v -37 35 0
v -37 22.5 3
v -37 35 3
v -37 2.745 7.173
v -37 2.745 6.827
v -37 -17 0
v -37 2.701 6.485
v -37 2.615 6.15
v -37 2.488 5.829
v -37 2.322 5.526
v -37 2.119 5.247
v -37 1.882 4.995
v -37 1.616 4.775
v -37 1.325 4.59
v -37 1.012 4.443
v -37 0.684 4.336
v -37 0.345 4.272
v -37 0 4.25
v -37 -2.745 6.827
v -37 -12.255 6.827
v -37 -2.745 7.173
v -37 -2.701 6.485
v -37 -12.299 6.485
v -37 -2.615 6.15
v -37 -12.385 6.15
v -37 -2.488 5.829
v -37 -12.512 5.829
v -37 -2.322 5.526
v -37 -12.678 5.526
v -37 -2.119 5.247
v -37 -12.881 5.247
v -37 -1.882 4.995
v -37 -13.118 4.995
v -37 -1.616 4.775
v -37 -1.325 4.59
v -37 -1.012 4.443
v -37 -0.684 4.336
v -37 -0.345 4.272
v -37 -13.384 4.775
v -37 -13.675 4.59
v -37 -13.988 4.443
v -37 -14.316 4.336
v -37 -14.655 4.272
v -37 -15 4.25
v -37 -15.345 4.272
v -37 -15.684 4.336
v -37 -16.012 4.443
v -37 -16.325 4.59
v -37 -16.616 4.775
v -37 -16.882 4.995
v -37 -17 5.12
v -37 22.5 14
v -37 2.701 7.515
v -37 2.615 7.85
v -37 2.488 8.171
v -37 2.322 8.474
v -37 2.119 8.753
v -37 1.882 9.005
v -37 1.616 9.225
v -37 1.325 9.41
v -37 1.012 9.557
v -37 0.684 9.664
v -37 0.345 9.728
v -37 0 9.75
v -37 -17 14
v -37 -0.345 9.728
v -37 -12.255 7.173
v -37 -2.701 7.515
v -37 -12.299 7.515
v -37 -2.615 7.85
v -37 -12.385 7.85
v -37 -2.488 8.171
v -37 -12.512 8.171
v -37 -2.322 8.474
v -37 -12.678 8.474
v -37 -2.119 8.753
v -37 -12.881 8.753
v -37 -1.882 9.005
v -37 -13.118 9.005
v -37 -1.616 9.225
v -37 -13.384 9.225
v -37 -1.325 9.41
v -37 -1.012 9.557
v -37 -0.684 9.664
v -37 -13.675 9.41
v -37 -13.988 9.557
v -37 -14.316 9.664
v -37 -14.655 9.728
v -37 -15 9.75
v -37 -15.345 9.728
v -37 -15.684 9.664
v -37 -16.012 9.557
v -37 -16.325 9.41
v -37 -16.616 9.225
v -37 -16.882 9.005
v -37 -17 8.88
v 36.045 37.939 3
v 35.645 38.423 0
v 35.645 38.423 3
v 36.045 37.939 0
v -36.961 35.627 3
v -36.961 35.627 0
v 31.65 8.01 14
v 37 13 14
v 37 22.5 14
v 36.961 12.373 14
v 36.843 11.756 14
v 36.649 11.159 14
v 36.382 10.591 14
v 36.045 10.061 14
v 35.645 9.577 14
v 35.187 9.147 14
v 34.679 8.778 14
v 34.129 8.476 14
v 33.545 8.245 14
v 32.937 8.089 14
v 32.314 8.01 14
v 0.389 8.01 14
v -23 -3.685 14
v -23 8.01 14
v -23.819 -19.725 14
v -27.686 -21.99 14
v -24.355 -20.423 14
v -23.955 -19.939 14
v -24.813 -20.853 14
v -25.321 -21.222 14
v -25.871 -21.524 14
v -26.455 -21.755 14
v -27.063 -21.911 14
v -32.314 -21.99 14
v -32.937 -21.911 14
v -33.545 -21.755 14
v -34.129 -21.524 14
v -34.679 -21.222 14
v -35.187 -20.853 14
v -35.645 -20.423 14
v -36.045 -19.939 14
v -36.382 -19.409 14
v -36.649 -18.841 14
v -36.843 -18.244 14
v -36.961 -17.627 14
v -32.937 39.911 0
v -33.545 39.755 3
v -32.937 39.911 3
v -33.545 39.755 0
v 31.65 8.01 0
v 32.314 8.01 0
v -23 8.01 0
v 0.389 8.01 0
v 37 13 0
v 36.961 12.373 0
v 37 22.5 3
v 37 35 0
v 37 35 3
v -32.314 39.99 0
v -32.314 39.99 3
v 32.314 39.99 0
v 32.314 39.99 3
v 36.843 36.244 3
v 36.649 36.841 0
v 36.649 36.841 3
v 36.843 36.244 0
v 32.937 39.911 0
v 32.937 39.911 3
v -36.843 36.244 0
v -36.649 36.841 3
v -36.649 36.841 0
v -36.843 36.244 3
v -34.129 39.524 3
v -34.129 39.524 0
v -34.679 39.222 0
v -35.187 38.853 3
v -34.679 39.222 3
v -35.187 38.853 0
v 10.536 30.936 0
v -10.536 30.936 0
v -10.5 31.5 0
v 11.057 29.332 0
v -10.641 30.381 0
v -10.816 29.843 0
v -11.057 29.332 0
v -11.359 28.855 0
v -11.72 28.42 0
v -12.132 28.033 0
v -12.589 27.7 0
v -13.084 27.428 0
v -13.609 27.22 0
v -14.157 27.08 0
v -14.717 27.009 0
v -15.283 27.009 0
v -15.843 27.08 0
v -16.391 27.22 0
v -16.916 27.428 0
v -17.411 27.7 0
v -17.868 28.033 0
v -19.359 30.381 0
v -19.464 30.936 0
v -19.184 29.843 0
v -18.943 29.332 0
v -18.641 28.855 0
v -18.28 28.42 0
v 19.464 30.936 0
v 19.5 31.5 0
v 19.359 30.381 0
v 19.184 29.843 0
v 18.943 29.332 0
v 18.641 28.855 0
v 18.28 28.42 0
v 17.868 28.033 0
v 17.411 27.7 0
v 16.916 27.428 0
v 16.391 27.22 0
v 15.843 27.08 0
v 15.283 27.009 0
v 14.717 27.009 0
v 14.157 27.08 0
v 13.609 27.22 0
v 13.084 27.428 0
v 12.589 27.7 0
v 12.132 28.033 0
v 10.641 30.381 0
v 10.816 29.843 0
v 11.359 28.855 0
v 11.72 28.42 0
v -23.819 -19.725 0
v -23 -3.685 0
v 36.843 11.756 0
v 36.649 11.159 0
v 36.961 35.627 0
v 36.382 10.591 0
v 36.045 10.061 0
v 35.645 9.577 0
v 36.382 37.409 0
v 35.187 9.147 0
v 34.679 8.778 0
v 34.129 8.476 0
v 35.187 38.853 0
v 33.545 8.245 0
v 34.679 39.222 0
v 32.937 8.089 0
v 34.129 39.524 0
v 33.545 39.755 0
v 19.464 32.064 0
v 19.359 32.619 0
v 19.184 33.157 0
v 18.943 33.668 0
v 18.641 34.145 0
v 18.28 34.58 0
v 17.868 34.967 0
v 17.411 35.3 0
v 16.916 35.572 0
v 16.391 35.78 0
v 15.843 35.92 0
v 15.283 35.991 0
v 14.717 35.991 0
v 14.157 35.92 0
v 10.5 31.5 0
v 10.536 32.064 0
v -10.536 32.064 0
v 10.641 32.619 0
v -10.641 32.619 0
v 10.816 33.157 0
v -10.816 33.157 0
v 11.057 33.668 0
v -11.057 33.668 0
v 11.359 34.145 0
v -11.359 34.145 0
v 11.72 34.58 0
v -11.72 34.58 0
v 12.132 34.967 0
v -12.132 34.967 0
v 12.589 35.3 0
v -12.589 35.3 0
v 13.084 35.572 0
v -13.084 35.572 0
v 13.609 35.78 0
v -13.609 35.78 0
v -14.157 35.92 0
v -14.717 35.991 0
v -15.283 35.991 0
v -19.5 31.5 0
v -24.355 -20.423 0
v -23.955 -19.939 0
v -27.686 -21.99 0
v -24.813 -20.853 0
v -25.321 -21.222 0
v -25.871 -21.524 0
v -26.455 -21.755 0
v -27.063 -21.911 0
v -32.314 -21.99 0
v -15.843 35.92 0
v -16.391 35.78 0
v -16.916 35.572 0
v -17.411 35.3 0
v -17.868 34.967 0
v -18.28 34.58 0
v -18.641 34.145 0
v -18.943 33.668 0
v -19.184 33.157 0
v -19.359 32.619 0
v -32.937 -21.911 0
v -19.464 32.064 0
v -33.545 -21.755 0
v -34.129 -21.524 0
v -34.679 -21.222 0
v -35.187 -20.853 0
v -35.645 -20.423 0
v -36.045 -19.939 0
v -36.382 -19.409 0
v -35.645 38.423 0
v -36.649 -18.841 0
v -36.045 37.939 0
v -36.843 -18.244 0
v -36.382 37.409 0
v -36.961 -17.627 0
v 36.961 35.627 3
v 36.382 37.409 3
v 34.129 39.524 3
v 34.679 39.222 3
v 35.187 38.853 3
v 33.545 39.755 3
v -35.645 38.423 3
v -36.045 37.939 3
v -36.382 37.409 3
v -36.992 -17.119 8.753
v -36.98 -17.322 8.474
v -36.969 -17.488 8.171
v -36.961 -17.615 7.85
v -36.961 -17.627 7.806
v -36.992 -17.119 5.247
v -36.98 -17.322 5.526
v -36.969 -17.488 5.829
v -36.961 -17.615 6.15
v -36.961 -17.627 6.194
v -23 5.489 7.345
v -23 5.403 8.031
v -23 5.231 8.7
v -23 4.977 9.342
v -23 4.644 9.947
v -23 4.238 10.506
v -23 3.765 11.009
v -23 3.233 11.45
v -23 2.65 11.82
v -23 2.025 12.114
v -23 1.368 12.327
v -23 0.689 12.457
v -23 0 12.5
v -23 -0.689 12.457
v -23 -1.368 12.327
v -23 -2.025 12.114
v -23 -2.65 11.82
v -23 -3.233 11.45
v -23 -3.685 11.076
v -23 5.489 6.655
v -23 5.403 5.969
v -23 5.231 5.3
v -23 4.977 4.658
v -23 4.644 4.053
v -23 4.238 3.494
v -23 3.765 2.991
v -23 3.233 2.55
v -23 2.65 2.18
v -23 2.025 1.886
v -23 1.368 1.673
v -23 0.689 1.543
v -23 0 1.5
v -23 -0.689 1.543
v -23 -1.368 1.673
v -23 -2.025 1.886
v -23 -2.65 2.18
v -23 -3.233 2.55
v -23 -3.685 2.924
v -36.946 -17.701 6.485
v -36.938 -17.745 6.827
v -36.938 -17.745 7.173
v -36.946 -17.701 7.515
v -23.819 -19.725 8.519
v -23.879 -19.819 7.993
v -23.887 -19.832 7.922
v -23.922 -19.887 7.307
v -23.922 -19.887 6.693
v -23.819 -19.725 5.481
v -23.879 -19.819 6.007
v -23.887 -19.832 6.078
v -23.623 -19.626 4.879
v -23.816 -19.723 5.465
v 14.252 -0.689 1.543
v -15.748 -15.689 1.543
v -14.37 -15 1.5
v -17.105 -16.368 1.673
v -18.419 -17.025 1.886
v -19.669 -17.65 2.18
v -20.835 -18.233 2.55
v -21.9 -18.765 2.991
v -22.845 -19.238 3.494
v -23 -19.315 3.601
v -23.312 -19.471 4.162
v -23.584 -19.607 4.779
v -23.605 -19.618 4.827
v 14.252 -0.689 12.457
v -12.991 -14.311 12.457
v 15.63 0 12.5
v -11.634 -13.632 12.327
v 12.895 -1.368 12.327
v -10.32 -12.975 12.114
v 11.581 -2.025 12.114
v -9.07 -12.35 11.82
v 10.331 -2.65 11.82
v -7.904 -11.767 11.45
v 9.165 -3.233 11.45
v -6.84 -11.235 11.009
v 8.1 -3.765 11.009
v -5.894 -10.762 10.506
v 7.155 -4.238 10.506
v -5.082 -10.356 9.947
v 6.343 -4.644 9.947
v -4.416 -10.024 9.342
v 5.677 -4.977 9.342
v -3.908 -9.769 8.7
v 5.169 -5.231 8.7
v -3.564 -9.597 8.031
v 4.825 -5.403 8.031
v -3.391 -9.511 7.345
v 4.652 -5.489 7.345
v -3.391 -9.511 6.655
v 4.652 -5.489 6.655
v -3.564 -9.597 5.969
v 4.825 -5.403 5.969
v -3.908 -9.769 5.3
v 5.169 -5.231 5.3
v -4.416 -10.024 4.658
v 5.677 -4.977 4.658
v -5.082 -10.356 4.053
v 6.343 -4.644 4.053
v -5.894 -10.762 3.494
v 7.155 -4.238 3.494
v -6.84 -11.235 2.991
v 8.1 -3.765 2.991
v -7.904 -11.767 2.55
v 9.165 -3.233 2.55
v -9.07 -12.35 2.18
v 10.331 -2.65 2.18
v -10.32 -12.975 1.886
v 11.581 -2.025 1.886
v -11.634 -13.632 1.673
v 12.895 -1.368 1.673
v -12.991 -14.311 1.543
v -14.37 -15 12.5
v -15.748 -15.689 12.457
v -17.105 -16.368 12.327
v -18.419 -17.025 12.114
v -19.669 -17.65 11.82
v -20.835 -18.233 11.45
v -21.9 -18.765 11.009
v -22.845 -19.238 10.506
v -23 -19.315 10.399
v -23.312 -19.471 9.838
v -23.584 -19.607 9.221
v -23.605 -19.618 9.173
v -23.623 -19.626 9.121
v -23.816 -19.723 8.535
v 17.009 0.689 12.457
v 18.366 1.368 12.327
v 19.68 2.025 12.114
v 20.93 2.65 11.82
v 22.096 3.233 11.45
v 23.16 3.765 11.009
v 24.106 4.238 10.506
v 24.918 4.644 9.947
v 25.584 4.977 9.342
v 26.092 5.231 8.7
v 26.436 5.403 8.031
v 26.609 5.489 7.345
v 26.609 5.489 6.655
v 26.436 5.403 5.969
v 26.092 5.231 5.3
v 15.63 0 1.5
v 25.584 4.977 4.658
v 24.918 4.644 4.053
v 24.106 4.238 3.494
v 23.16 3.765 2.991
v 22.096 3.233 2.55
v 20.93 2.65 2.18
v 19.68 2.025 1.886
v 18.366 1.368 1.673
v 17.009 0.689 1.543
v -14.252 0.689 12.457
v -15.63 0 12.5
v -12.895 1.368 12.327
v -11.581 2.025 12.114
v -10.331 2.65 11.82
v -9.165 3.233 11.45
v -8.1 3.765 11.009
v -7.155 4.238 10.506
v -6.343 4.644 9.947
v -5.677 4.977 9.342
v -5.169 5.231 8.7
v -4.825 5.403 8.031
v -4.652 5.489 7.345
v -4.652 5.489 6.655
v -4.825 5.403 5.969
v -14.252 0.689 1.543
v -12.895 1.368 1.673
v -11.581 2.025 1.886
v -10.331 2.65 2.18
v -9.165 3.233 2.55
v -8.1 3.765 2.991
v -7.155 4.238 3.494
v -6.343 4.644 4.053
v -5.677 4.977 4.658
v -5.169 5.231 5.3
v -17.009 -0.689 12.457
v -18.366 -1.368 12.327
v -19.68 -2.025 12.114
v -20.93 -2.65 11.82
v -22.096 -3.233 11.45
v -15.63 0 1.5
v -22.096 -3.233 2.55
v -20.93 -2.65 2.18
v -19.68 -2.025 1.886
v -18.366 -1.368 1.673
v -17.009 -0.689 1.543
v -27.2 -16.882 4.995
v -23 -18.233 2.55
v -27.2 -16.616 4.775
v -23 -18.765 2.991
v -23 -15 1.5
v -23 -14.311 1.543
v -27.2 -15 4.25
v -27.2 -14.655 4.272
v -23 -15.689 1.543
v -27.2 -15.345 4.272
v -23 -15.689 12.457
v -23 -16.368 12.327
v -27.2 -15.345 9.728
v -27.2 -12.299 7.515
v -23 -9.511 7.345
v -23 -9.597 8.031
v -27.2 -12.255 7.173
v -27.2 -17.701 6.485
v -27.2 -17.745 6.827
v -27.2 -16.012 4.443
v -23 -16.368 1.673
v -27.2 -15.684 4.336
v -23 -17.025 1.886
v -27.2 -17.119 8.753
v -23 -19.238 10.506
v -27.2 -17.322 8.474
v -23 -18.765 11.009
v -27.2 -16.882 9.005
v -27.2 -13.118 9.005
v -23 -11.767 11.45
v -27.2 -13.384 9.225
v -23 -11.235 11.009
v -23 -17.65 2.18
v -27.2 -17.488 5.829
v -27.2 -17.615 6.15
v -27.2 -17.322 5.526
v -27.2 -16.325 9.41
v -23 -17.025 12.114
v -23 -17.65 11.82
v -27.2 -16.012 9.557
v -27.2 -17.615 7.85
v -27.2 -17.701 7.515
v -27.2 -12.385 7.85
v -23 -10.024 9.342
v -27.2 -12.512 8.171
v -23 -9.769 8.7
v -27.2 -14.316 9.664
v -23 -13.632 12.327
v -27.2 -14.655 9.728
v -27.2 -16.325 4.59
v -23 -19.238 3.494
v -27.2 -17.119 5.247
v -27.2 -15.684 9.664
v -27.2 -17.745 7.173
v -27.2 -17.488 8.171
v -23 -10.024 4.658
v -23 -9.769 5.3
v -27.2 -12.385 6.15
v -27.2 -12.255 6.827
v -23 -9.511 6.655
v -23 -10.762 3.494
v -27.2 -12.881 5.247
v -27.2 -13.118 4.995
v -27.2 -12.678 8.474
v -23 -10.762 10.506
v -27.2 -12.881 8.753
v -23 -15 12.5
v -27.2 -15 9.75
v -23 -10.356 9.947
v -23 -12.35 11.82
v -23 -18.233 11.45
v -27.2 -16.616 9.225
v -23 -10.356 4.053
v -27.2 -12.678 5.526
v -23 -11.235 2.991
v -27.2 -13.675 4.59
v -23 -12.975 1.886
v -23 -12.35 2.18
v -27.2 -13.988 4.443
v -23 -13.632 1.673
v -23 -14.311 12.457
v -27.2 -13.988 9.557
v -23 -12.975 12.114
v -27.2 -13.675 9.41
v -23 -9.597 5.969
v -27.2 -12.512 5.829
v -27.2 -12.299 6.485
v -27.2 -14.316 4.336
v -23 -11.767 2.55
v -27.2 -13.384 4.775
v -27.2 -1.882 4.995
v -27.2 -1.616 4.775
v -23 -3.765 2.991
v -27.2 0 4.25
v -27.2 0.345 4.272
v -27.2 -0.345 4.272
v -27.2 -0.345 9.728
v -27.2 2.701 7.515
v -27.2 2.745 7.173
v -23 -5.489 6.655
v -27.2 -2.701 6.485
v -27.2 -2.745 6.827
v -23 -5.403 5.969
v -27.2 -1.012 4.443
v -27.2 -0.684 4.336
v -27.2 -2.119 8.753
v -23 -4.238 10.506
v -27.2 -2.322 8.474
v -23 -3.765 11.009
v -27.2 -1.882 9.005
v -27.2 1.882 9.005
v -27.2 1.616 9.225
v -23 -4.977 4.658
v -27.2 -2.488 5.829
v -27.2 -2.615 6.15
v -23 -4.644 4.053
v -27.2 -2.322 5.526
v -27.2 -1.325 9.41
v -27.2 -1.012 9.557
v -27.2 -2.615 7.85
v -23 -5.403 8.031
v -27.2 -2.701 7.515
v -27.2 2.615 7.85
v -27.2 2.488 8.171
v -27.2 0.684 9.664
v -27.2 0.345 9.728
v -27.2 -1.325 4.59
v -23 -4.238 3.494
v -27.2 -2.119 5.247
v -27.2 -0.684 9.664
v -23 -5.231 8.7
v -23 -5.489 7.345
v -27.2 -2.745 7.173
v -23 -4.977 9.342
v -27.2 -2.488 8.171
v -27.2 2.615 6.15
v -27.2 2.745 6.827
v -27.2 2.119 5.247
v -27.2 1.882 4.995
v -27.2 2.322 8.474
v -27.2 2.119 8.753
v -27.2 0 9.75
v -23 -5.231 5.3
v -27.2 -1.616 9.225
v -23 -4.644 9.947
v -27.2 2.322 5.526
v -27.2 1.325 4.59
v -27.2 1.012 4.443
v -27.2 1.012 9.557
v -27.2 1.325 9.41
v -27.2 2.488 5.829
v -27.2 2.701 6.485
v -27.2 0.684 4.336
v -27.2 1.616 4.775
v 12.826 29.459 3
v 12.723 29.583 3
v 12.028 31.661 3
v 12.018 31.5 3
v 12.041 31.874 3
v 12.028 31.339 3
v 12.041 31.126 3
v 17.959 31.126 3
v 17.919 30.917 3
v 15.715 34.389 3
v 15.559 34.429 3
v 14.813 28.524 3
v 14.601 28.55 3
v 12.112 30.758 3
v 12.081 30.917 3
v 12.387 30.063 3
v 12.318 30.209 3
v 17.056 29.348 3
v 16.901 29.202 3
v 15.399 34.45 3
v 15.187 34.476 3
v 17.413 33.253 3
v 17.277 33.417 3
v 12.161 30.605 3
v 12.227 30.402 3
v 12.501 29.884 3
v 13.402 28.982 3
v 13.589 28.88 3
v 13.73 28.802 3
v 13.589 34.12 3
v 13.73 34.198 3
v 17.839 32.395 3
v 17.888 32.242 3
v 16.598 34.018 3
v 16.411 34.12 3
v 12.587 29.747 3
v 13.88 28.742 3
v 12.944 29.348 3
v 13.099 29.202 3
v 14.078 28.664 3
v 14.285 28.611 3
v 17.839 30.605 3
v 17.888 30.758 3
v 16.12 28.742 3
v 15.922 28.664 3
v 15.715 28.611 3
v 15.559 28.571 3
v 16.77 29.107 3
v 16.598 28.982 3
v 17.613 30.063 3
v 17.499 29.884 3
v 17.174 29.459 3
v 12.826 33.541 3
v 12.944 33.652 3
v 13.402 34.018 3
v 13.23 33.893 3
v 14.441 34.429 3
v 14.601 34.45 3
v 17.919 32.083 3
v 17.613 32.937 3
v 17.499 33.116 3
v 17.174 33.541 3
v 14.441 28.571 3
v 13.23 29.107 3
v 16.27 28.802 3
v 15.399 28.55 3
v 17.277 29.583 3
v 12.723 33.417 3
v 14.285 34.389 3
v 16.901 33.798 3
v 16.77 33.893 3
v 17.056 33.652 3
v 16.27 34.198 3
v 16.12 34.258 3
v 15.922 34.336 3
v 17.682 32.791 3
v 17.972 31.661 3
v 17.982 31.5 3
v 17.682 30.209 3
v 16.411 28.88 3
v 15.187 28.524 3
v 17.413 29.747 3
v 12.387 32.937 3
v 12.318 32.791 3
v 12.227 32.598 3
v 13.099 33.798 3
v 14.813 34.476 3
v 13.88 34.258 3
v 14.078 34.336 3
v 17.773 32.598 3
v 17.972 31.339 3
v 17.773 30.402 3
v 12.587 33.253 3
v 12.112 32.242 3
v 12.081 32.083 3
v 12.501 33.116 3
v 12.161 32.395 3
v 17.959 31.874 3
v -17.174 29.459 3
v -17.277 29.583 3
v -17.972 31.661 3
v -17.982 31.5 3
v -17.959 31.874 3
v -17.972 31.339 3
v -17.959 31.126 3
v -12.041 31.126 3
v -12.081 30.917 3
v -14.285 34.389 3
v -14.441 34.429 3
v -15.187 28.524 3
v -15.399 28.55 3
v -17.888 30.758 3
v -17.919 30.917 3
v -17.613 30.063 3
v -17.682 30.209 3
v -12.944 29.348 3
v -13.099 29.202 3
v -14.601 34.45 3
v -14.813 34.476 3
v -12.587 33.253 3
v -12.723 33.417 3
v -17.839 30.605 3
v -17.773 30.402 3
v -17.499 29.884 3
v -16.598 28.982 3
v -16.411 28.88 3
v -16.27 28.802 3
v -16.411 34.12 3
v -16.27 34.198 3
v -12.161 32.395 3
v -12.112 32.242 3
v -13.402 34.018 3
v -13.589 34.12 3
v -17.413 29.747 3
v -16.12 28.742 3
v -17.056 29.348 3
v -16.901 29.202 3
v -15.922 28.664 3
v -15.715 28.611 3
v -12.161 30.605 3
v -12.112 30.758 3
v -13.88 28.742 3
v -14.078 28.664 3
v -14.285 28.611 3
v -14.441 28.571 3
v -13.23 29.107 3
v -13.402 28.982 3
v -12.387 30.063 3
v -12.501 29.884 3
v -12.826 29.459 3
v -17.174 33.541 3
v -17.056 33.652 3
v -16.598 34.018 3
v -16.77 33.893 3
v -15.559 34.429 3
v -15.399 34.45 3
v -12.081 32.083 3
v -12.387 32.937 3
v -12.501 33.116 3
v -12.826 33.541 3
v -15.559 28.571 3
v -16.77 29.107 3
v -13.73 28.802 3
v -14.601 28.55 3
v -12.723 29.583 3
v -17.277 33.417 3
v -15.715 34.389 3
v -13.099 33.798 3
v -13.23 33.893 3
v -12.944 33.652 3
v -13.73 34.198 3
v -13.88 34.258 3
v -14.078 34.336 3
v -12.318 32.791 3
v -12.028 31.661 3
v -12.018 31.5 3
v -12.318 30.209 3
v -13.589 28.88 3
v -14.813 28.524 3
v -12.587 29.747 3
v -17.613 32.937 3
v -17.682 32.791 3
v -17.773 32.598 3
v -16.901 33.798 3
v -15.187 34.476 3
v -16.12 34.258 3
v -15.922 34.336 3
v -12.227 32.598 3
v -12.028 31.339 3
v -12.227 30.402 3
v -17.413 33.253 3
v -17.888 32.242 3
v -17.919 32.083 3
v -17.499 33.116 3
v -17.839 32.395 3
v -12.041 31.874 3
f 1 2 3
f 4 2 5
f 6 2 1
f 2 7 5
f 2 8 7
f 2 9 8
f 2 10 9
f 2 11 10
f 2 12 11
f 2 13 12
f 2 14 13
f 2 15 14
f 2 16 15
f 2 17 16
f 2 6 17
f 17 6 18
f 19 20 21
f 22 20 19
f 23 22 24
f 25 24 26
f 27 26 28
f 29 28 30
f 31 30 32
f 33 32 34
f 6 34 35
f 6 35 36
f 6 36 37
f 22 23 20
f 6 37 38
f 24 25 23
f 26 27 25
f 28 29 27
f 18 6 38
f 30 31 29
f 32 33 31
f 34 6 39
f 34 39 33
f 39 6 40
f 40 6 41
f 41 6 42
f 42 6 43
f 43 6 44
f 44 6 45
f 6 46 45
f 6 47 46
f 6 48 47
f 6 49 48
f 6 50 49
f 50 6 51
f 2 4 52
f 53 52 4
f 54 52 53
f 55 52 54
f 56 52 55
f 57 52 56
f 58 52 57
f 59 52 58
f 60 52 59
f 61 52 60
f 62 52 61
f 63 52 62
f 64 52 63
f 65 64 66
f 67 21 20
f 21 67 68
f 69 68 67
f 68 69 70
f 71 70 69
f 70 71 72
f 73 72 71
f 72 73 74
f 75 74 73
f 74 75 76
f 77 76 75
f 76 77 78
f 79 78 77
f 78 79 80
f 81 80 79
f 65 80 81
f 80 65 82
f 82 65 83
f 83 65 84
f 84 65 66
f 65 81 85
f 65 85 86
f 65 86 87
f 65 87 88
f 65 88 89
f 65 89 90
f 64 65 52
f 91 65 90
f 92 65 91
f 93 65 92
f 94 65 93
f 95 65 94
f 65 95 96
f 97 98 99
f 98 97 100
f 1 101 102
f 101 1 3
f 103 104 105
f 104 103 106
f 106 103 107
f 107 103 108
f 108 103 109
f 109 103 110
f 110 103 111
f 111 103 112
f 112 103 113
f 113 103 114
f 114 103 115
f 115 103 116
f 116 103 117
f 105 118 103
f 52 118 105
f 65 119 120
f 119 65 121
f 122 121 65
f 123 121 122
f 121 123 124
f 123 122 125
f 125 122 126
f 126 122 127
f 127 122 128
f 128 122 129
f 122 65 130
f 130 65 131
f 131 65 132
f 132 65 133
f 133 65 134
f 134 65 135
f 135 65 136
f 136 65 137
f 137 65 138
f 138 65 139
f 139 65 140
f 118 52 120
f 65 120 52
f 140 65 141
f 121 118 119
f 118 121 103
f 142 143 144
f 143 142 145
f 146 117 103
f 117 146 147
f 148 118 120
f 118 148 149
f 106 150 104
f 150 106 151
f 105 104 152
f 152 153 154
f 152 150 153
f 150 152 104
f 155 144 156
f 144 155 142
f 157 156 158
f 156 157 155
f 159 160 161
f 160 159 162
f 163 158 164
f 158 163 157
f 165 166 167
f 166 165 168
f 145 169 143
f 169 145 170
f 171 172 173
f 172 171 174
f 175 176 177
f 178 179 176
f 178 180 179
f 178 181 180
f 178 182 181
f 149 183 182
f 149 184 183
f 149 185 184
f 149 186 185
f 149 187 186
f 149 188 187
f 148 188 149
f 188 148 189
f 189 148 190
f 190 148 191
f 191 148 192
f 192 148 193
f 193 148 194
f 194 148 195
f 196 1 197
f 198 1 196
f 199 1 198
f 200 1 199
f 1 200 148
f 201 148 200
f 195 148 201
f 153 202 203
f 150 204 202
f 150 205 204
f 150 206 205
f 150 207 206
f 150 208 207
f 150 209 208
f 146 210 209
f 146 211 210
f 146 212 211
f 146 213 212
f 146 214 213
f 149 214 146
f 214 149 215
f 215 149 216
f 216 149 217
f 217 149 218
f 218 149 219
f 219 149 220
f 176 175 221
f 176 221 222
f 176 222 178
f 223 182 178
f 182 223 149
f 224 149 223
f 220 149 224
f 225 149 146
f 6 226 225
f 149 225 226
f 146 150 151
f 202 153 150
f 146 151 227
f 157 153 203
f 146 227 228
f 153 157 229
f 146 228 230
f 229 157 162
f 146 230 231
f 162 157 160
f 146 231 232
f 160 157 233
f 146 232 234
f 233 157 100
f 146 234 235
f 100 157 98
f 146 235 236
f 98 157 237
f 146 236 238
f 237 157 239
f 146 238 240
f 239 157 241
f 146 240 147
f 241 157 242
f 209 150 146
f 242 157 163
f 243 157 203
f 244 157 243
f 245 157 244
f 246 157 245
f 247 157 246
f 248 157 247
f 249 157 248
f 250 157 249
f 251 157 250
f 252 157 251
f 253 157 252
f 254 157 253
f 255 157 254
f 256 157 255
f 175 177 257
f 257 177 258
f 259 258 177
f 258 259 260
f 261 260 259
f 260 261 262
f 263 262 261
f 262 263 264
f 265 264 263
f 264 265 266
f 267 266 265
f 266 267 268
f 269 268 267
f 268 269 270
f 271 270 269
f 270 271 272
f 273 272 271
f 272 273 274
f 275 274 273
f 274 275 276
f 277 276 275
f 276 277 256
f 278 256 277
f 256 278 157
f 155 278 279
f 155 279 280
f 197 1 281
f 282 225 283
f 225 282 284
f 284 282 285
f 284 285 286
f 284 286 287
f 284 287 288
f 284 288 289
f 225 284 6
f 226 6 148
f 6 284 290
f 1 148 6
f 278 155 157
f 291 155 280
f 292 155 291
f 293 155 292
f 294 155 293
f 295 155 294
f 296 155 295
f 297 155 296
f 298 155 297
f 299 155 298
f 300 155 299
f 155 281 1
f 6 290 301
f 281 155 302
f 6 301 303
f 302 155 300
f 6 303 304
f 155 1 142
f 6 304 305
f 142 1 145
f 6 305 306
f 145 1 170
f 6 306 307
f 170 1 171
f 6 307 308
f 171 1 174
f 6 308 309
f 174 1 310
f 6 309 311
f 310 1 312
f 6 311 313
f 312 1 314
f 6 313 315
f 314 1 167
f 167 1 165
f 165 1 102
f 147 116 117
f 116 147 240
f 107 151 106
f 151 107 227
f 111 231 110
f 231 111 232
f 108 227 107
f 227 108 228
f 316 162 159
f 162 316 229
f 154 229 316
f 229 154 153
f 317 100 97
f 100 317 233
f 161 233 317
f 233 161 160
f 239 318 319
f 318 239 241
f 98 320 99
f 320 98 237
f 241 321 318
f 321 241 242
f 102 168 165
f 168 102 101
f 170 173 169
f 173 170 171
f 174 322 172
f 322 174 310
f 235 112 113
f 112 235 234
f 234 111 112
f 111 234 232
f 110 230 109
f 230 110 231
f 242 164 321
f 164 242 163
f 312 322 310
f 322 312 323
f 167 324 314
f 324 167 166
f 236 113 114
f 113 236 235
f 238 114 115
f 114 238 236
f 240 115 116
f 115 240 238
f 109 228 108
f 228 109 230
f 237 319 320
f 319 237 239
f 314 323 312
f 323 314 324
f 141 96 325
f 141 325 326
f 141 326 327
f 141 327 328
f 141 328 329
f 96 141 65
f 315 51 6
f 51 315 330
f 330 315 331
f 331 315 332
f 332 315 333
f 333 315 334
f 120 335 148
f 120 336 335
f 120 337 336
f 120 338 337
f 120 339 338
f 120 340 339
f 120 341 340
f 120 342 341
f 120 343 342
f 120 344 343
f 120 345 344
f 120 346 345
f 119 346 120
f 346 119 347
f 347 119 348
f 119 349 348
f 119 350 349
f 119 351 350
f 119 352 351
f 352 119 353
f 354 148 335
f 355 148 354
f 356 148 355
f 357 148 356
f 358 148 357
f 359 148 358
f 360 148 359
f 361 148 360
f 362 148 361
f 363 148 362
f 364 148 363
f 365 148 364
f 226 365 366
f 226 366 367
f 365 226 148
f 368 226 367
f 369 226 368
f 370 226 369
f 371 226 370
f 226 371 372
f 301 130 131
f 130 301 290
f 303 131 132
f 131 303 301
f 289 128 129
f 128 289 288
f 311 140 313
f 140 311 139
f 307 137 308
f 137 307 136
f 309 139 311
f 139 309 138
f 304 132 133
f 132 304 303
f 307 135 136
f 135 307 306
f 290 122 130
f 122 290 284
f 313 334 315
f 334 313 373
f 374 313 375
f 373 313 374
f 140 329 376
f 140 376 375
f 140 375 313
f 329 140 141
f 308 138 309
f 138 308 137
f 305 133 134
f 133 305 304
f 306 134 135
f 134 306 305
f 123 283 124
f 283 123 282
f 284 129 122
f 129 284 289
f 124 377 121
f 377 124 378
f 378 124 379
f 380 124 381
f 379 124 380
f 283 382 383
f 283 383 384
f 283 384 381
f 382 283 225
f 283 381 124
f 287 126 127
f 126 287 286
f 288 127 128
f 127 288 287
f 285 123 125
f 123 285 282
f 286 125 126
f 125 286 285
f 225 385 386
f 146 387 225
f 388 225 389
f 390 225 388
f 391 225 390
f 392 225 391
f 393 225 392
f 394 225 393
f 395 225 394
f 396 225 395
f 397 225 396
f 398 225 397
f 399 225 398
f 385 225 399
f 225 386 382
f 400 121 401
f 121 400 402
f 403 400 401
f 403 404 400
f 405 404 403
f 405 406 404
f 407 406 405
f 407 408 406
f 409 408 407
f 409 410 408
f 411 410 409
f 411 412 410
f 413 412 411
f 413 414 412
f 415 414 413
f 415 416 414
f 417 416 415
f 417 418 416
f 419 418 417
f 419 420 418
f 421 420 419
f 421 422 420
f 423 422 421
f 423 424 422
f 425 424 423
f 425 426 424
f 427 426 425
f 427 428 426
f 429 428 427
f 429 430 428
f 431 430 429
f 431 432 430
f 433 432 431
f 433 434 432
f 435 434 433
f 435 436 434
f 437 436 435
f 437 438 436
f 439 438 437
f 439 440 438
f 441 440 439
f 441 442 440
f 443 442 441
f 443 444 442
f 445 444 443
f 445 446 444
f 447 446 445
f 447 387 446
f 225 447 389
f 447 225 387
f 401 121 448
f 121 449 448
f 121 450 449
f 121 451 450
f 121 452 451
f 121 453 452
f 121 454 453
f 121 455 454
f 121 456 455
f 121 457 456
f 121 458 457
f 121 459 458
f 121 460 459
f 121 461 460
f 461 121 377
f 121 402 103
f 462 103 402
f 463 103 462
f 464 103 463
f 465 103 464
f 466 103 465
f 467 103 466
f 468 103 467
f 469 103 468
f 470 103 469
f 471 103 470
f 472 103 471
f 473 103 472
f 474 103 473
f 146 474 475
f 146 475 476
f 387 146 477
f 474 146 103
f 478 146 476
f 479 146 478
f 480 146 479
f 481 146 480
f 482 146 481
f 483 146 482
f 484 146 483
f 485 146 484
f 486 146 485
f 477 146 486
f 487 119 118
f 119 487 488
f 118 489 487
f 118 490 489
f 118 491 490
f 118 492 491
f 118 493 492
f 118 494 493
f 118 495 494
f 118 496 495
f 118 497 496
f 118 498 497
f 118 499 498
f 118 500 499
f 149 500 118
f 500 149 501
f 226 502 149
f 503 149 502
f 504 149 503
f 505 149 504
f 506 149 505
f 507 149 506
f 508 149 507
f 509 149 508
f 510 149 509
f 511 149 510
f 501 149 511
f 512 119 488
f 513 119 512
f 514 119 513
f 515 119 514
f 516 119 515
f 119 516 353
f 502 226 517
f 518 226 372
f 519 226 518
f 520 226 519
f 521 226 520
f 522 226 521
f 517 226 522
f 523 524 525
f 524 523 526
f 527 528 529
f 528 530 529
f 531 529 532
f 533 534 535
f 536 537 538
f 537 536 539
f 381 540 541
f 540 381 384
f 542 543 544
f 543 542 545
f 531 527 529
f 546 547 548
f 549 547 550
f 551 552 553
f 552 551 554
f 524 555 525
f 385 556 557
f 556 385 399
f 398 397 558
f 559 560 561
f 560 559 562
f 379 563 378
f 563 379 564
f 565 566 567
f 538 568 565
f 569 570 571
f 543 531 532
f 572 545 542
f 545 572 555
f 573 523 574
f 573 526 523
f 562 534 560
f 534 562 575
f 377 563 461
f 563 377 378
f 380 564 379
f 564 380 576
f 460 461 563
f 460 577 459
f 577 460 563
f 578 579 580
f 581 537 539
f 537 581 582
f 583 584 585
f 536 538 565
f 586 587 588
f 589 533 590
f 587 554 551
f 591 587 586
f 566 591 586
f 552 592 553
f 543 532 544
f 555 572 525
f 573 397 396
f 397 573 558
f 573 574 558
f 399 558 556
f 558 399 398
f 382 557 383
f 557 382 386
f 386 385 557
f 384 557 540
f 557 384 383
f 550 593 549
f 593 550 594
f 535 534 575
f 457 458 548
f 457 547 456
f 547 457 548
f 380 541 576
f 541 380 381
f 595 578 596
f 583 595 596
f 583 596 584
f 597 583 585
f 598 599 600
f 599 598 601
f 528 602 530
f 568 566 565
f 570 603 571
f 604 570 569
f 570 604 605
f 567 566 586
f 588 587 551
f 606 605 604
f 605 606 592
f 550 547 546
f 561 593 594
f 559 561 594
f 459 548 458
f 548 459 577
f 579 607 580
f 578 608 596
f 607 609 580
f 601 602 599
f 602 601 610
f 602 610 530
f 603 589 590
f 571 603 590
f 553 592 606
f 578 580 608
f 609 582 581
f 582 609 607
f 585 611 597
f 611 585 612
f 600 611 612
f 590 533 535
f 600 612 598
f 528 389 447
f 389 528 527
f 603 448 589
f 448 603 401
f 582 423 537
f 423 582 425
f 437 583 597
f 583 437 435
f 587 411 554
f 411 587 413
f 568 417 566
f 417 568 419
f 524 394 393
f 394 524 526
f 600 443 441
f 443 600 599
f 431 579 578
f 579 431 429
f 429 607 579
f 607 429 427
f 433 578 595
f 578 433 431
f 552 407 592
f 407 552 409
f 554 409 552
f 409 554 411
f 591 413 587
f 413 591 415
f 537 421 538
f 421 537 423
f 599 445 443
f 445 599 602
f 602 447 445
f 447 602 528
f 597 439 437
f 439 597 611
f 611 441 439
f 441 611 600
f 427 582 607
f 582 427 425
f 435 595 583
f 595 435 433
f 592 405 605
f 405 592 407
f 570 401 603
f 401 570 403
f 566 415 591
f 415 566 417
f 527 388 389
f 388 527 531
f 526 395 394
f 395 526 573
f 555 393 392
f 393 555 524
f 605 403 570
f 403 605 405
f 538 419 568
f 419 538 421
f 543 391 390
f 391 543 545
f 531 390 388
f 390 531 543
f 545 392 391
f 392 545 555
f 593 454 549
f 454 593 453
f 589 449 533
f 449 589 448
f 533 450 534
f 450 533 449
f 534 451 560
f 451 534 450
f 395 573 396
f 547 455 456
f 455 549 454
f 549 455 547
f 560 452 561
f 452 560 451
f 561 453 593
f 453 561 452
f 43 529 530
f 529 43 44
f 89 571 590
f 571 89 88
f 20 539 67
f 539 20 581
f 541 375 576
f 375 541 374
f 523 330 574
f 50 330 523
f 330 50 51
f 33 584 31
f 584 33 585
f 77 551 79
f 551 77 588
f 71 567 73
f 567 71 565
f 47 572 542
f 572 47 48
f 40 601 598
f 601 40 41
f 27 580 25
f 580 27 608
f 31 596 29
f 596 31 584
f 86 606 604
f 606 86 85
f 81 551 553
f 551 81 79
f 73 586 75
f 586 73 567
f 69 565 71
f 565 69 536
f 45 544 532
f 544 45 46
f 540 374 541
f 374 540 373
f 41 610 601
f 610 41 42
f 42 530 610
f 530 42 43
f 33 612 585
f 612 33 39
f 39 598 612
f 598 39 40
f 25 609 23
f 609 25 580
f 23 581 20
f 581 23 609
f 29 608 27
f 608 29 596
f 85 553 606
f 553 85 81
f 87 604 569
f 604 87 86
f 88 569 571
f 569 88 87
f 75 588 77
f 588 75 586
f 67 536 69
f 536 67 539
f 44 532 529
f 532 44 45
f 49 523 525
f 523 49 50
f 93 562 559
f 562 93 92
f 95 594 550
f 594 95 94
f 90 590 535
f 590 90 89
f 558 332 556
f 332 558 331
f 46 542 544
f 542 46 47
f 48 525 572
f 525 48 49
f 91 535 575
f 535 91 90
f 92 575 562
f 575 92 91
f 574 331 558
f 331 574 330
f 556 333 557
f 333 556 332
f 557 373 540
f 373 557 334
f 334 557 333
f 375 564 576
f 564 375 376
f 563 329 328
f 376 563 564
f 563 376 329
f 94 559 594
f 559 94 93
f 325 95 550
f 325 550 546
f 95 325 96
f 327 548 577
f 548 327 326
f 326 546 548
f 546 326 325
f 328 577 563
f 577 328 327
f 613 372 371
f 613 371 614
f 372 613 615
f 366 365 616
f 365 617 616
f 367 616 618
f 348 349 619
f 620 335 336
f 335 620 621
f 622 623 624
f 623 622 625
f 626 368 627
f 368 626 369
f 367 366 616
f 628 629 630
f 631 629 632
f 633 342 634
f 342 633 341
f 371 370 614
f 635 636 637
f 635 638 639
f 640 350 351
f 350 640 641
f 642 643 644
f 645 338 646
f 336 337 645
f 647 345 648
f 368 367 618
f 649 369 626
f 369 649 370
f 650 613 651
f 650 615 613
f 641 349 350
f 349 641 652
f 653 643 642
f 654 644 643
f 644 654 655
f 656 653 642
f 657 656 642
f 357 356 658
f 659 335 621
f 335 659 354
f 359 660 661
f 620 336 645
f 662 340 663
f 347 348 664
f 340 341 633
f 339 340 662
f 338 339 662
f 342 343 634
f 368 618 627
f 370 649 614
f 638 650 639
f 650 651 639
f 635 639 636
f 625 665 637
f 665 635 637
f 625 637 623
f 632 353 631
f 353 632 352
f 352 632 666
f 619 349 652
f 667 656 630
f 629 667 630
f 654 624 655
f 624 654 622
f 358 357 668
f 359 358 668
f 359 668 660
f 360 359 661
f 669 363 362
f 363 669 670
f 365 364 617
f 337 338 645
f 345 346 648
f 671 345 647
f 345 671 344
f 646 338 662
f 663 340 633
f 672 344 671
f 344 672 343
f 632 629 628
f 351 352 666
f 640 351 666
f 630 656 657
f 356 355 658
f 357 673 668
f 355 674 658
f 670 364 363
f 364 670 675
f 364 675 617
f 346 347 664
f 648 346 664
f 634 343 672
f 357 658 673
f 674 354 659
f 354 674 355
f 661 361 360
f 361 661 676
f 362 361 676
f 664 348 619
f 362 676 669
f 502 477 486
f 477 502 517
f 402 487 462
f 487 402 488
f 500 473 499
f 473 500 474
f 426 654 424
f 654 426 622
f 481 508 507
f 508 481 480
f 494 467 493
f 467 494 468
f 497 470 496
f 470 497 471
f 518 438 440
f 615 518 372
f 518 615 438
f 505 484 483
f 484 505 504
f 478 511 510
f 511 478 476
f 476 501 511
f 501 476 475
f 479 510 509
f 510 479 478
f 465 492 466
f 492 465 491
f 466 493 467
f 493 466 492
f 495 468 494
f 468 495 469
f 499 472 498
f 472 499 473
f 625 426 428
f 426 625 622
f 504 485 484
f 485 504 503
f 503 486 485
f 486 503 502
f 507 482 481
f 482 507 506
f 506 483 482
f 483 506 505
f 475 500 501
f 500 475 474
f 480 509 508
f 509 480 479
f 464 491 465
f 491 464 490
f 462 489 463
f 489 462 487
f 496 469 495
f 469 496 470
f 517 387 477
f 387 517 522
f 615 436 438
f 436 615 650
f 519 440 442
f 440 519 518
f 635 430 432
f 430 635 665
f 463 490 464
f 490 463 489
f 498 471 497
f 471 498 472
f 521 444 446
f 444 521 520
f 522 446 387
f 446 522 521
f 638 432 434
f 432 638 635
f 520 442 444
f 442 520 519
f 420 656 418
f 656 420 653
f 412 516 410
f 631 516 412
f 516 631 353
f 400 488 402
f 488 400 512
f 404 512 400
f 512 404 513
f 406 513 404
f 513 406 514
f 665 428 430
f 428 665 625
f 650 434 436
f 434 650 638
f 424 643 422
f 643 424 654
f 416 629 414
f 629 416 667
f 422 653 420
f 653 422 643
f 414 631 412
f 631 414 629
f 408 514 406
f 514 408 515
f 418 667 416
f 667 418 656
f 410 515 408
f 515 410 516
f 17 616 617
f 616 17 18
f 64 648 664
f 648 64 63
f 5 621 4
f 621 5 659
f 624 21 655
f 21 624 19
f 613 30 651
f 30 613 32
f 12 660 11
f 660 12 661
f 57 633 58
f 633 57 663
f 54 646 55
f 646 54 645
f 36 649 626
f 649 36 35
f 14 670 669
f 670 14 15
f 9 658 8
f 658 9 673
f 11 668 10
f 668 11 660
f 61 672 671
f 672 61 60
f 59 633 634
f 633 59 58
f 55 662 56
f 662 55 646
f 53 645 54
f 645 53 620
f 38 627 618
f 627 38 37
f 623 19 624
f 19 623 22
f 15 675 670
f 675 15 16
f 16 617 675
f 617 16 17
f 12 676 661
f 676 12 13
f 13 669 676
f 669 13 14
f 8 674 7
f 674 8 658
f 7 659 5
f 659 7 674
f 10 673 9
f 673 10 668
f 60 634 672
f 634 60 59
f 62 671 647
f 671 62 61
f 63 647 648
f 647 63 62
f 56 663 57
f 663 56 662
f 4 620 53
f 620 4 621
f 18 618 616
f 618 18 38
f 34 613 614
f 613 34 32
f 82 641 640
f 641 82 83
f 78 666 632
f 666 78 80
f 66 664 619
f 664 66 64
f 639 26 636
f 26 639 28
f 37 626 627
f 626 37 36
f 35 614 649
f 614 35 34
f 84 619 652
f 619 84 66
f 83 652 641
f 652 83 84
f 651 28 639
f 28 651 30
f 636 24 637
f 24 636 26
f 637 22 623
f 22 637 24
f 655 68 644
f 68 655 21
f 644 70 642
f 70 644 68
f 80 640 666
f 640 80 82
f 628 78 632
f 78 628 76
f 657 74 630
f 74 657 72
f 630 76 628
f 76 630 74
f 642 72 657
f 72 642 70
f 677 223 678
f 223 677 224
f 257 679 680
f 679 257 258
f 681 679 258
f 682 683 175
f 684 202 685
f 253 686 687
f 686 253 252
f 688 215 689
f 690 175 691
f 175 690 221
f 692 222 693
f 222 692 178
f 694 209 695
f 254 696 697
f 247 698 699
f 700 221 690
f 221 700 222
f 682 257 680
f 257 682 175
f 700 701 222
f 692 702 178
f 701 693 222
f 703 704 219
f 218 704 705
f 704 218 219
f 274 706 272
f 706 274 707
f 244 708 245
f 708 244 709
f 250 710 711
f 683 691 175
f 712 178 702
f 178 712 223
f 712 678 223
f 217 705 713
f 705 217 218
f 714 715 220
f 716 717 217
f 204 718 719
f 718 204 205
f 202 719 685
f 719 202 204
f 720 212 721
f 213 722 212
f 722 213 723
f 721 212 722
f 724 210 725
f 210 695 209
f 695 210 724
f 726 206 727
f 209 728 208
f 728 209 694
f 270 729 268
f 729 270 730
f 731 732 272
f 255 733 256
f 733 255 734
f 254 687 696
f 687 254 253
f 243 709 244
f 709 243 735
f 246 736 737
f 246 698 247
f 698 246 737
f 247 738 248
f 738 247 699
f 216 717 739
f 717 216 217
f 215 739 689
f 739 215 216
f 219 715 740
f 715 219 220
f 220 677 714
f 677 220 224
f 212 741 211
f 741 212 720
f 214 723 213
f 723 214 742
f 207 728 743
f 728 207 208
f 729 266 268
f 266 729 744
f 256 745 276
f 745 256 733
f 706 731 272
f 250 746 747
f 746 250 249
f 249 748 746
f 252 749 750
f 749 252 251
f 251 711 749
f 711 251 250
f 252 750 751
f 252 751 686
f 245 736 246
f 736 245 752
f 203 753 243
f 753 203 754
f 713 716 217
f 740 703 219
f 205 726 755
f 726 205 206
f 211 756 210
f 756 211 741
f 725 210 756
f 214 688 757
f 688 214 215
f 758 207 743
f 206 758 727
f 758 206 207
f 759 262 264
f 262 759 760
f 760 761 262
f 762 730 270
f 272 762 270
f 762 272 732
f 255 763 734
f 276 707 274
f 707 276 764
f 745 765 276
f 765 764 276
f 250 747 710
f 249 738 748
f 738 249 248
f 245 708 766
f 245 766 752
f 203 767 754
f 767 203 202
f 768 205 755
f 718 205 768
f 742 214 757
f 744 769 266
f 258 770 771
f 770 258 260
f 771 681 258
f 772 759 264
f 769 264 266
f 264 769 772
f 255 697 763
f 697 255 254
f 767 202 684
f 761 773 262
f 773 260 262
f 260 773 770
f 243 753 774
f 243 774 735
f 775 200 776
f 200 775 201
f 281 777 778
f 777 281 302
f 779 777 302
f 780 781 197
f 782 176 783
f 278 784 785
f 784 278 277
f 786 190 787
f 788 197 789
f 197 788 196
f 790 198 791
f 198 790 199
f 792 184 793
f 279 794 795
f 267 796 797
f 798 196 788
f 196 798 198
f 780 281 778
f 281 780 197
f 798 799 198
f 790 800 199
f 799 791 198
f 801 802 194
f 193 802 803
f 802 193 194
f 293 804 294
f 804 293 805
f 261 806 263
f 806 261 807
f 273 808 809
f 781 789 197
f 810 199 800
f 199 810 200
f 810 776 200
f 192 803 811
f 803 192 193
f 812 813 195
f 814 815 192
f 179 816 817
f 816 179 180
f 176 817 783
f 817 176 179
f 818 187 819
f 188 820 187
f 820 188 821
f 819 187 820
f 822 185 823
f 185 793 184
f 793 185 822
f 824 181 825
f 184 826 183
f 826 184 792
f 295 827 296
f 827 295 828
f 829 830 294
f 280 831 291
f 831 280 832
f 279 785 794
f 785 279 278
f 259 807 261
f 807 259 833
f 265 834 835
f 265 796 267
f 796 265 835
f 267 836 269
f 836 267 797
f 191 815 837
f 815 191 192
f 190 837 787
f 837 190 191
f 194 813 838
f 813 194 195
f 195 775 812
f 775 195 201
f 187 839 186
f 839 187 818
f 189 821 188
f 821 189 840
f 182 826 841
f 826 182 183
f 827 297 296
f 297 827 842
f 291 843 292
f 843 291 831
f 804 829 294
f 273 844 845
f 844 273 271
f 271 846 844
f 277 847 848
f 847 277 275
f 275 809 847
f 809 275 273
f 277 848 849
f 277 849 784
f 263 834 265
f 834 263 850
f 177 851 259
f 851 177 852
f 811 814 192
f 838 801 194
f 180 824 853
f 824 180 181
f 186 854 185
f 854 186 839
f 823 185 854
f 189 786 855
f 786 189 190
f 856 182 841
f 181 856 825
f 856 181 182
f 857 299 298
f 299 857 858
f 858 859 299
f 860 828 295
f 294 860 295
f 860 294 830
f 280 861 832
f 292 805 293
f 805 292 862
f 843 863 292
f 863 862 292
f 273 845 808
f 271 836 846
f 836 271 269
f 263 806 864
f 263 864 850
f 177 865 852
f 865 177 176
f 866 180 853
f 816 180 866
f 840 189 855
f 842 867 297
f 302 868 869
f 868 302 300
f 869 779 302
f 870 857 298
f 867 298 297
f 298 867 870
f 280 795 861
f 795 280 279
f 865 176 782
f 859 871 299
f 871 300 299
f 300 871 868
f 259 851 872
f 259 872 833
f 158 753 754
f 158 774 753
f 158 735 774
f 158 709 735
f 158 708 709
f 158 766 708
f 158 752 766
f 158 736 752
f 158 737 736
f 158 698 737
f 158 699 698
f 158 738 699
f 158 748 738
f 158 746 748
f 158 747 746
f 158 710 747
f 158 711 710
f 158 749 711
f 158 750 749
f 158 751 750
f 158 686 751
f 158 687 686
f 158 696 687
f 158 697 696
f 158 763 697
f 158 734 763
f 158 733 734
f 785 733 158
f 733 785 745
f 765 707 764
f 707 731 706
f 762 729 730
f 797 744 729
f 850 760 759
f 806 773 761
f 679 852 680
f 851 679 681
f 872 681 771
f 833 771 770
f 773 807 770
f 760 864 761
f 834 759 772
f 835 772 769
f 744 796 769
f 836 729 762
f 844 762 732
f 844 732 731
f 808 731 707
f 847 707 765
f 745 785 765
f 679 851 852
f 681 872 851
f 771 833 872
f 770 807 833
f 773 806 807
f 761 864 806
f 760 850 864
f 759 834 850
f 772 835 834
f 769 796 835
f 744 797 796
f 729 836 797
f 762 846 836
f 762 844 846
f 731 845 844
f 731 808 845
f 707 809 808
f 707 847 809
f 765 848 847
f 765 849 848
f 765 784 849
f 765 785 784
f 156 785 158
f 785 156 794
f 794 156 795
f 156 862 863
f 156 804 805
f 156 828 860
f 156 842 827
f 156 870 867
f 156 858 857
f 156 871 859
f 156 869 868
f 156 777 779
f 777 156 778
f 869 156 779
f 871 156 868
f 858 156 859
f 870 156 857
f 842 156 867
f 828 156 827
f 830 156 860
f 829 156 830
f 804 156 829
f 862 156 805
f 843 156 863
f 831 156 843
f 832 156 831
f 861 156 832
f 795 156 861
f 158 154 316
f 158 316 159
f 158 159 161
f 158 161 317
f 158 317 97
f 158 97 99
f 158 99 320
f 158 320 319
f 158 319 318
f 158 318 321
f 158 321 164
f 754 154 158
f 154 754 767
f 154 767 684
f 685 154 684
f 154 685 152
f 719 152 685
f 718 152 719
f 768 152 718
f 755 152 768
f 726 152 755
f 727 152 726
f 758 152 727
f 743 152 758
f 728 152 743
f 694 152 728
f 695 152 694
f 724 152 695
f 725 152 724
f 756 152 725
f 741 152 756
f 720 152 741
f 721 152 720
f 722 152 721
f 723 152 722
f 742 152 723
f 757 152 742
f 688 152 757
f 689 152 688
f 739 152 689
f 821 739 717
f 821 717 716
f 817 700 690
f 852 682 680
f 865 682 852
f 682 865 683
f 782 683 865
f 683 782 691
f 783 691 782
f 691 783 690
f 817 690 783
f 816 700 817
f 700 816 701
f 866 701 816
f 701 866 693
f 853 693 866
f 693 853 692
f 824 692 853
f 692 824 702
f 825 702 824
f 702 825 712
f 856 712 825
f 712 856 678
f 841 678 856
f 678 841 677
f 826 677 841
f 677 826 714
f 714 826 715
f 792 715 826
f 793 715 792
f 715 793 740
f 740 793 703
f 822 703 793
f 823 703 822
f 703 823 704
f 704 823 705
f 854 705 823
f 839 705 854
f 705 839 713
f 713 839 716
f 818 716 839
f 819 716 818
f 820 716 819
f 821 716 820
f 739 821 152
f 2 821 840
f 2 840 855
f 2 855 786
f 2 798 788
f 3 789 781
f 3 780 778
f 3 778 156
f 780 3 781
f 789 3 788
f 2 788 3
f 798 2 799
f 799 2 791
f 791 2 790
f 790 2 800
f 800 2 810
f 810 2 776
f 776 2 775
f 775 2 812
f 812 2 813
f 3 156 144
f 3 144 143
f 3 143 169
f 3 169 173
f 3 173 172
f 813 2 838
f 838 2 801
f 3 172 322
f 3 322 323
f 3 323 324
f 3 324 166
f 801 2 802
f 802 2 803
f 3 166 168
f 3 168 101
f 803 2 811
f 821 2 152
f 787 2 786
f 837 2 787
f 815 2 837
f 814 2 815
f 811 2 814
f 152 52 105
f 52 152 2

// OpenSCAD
$fn = 50;


difference() {
	union() {
		translate(v = [0, 24.0000000000, 0]) {
			hull() {
				translate(v = [-32.0000000000, 11.0000000000, 0]) {
					cylinder(h = 14, r = 5);
				}
				translate(v = [32.0000000000, 11.0000000000, 0]) {
					cylinder(h = 14, r = 5);
				}
				translate(v = [-32.0000000000, -11.0000000000, 0]) {
					cylinder(h = 14, r = 5);
				}
				translate(v = [32.0000000000, -11.0000000000, 0]) {
					cylinder(h = 14, r = 5);
				}
			}
		}
		translate(v = [-30.0000000000, 0, 0]) {
			hull() {
				translate(v = [-2.0000000000, 17.0000000000, 0]) {
					cylinder(h = 14, r = 5);
				}
				translate(v = [2.0000000000, 17.0000000000, 0]) {
					cylinder(h = 14, r = 5);
				}
				translate(v = [-2.0000000000, -17.0000000000, 0]) {
					cylinder(h = 14, r = 5);
				}
				translate(v = [2.0000000000, -17.0000000000, 0]) {
					cylinder(h = 14, r = 5);
				}
			}
		}
		rotate(a = [0, 0, 26.5650511771]) {
			hull() {
				translate(v = [-33.0410196625, 2.0000000000, 0]) {
					cylinder(h = 14, r = 5);
				}
				translate(v = [33.0410196625, 2.0000000000, 0]) {
					cylinder(h = 14, r = 5);
				}
				translate(v = [-33.0410196625, -2.0000000000, 0]) {
					cylinder(h = 14, r = 5);
				}
				translate(v = [33.0410196625, -2.0000000000, 0]) {
					cylinder(h = 14, r = 5);
				}
			}
		}
	}
	union() {
		translate(v = [-23.0000000000, -15.0000000000, 7.0000000000]) {
			rotate(a = [0, 90, 0]) {
				difference() {
					union() {
						#translate(v = [0, 0, -14.0000000000]) {
							cylinder(h = 14, r = 2.2500000000);
						}
						#translate(v = [0, 0, -4.2000000000]) {
							cylinder(h = 4.2000000000, r1 = 2.7500000000, r2 = 5.5000000000);
						}
						#cylinder(h = 250, r = 5.5000000000);
						#translate(v = [0, 0, -14.0000000000]) {
							cylinder(h = 14, r = 2.7500000000);
						}
						#translate(v = [0, 0, -14.0000000000]) {
							cylinder(h = 14, r = 2.2500000000);
						}
					}
					union();
				}
			}
		}
		translate(v = [-23.0000000000, 0.0000000000, 7.0000000000]) {
			rotate(a = [0, 90, 0]) {
				difference() {
					union() {
						#translate(v = [0, 0, -14.0000000000]) {
							cylinder(h = 14, r = 2.2500000000);
						}
						#translate(v = [0, 0, -4.2000000000]) {
							cylinder(h = 4.2000000000, r1 = 2.7500000000, r2 = 5.5000000000);
						}
						#cylinder(h = 250, r = 5.5000000000);
						#translate(v = [0, 0, -14.0000000000]) {
							cylinder(h = 14, r = 2.7500000000);
						}
						#translate(v = [0, 0, -14.0000000000]) {
							cylinder(h = 14, r = 2.2500000000);
						}
					}
					union();
				}
			}
		}
		translate(v = [15.0000000000, 31.5000000000, 0.0000000000]) {
			rotate(a = [0, 180, 0]) {
				difference() {
					union() {
						#translate(v = [0, 0, -14.0000000000]) {
							cylinder(h = 14, r = 2.2500000000);
						}
						#translate(v = [0, 0, -4.2000000000]) {
							cylinder(h = 4.2000000000, r1 = 2.3750000000, r2 = 4.5000000000);
						}
						#cylinder(h = 250, r = 4.5000000000);
						#translate(v = [0, 0, -14.0000000000]) {
							cylinder(h = 14, r = 2.3750000000);
						}
						#translate(v = [0, 0, -14.0000000000]) {
							cylinder(h = 14, r = 2.2500000000);
						}
					}
					union();
				}
			}
		}
		translate(v = [-15.0000000000, 31.5000000000, 0.0000000000]) {
			rotate(a = [0, 180, 0]) {
				difference() {
					union() {
						#translate(v = [0, 0, -14.0000000000]) {
							cylinder(h = 14, r = 2.2500000000);
						}
						#translate(v = [0, 0, -4.2000000000]) {
							cylinder(h = 4.2000000000, r1 = 2.3750000000, r2 = 4.5000000000);
						}
						#cylinder(h = 250, r = 4.5000000000);
						#translate(v = [0, 0, -14.0000000000]) {
							cylinder(h = 14, r = 2.3750000000);
						}
						#translate(v = [0, 0, -14.0000000000]) {
							cylinder(h = 14, r = 2.2500000000);
						}
					}
					union();
				}
			}
		}
		translate(v = [-37.0000000000, 22.5000000000, 3]) {
			cube(size = [74, 18, 11]);
		}
	}
}
